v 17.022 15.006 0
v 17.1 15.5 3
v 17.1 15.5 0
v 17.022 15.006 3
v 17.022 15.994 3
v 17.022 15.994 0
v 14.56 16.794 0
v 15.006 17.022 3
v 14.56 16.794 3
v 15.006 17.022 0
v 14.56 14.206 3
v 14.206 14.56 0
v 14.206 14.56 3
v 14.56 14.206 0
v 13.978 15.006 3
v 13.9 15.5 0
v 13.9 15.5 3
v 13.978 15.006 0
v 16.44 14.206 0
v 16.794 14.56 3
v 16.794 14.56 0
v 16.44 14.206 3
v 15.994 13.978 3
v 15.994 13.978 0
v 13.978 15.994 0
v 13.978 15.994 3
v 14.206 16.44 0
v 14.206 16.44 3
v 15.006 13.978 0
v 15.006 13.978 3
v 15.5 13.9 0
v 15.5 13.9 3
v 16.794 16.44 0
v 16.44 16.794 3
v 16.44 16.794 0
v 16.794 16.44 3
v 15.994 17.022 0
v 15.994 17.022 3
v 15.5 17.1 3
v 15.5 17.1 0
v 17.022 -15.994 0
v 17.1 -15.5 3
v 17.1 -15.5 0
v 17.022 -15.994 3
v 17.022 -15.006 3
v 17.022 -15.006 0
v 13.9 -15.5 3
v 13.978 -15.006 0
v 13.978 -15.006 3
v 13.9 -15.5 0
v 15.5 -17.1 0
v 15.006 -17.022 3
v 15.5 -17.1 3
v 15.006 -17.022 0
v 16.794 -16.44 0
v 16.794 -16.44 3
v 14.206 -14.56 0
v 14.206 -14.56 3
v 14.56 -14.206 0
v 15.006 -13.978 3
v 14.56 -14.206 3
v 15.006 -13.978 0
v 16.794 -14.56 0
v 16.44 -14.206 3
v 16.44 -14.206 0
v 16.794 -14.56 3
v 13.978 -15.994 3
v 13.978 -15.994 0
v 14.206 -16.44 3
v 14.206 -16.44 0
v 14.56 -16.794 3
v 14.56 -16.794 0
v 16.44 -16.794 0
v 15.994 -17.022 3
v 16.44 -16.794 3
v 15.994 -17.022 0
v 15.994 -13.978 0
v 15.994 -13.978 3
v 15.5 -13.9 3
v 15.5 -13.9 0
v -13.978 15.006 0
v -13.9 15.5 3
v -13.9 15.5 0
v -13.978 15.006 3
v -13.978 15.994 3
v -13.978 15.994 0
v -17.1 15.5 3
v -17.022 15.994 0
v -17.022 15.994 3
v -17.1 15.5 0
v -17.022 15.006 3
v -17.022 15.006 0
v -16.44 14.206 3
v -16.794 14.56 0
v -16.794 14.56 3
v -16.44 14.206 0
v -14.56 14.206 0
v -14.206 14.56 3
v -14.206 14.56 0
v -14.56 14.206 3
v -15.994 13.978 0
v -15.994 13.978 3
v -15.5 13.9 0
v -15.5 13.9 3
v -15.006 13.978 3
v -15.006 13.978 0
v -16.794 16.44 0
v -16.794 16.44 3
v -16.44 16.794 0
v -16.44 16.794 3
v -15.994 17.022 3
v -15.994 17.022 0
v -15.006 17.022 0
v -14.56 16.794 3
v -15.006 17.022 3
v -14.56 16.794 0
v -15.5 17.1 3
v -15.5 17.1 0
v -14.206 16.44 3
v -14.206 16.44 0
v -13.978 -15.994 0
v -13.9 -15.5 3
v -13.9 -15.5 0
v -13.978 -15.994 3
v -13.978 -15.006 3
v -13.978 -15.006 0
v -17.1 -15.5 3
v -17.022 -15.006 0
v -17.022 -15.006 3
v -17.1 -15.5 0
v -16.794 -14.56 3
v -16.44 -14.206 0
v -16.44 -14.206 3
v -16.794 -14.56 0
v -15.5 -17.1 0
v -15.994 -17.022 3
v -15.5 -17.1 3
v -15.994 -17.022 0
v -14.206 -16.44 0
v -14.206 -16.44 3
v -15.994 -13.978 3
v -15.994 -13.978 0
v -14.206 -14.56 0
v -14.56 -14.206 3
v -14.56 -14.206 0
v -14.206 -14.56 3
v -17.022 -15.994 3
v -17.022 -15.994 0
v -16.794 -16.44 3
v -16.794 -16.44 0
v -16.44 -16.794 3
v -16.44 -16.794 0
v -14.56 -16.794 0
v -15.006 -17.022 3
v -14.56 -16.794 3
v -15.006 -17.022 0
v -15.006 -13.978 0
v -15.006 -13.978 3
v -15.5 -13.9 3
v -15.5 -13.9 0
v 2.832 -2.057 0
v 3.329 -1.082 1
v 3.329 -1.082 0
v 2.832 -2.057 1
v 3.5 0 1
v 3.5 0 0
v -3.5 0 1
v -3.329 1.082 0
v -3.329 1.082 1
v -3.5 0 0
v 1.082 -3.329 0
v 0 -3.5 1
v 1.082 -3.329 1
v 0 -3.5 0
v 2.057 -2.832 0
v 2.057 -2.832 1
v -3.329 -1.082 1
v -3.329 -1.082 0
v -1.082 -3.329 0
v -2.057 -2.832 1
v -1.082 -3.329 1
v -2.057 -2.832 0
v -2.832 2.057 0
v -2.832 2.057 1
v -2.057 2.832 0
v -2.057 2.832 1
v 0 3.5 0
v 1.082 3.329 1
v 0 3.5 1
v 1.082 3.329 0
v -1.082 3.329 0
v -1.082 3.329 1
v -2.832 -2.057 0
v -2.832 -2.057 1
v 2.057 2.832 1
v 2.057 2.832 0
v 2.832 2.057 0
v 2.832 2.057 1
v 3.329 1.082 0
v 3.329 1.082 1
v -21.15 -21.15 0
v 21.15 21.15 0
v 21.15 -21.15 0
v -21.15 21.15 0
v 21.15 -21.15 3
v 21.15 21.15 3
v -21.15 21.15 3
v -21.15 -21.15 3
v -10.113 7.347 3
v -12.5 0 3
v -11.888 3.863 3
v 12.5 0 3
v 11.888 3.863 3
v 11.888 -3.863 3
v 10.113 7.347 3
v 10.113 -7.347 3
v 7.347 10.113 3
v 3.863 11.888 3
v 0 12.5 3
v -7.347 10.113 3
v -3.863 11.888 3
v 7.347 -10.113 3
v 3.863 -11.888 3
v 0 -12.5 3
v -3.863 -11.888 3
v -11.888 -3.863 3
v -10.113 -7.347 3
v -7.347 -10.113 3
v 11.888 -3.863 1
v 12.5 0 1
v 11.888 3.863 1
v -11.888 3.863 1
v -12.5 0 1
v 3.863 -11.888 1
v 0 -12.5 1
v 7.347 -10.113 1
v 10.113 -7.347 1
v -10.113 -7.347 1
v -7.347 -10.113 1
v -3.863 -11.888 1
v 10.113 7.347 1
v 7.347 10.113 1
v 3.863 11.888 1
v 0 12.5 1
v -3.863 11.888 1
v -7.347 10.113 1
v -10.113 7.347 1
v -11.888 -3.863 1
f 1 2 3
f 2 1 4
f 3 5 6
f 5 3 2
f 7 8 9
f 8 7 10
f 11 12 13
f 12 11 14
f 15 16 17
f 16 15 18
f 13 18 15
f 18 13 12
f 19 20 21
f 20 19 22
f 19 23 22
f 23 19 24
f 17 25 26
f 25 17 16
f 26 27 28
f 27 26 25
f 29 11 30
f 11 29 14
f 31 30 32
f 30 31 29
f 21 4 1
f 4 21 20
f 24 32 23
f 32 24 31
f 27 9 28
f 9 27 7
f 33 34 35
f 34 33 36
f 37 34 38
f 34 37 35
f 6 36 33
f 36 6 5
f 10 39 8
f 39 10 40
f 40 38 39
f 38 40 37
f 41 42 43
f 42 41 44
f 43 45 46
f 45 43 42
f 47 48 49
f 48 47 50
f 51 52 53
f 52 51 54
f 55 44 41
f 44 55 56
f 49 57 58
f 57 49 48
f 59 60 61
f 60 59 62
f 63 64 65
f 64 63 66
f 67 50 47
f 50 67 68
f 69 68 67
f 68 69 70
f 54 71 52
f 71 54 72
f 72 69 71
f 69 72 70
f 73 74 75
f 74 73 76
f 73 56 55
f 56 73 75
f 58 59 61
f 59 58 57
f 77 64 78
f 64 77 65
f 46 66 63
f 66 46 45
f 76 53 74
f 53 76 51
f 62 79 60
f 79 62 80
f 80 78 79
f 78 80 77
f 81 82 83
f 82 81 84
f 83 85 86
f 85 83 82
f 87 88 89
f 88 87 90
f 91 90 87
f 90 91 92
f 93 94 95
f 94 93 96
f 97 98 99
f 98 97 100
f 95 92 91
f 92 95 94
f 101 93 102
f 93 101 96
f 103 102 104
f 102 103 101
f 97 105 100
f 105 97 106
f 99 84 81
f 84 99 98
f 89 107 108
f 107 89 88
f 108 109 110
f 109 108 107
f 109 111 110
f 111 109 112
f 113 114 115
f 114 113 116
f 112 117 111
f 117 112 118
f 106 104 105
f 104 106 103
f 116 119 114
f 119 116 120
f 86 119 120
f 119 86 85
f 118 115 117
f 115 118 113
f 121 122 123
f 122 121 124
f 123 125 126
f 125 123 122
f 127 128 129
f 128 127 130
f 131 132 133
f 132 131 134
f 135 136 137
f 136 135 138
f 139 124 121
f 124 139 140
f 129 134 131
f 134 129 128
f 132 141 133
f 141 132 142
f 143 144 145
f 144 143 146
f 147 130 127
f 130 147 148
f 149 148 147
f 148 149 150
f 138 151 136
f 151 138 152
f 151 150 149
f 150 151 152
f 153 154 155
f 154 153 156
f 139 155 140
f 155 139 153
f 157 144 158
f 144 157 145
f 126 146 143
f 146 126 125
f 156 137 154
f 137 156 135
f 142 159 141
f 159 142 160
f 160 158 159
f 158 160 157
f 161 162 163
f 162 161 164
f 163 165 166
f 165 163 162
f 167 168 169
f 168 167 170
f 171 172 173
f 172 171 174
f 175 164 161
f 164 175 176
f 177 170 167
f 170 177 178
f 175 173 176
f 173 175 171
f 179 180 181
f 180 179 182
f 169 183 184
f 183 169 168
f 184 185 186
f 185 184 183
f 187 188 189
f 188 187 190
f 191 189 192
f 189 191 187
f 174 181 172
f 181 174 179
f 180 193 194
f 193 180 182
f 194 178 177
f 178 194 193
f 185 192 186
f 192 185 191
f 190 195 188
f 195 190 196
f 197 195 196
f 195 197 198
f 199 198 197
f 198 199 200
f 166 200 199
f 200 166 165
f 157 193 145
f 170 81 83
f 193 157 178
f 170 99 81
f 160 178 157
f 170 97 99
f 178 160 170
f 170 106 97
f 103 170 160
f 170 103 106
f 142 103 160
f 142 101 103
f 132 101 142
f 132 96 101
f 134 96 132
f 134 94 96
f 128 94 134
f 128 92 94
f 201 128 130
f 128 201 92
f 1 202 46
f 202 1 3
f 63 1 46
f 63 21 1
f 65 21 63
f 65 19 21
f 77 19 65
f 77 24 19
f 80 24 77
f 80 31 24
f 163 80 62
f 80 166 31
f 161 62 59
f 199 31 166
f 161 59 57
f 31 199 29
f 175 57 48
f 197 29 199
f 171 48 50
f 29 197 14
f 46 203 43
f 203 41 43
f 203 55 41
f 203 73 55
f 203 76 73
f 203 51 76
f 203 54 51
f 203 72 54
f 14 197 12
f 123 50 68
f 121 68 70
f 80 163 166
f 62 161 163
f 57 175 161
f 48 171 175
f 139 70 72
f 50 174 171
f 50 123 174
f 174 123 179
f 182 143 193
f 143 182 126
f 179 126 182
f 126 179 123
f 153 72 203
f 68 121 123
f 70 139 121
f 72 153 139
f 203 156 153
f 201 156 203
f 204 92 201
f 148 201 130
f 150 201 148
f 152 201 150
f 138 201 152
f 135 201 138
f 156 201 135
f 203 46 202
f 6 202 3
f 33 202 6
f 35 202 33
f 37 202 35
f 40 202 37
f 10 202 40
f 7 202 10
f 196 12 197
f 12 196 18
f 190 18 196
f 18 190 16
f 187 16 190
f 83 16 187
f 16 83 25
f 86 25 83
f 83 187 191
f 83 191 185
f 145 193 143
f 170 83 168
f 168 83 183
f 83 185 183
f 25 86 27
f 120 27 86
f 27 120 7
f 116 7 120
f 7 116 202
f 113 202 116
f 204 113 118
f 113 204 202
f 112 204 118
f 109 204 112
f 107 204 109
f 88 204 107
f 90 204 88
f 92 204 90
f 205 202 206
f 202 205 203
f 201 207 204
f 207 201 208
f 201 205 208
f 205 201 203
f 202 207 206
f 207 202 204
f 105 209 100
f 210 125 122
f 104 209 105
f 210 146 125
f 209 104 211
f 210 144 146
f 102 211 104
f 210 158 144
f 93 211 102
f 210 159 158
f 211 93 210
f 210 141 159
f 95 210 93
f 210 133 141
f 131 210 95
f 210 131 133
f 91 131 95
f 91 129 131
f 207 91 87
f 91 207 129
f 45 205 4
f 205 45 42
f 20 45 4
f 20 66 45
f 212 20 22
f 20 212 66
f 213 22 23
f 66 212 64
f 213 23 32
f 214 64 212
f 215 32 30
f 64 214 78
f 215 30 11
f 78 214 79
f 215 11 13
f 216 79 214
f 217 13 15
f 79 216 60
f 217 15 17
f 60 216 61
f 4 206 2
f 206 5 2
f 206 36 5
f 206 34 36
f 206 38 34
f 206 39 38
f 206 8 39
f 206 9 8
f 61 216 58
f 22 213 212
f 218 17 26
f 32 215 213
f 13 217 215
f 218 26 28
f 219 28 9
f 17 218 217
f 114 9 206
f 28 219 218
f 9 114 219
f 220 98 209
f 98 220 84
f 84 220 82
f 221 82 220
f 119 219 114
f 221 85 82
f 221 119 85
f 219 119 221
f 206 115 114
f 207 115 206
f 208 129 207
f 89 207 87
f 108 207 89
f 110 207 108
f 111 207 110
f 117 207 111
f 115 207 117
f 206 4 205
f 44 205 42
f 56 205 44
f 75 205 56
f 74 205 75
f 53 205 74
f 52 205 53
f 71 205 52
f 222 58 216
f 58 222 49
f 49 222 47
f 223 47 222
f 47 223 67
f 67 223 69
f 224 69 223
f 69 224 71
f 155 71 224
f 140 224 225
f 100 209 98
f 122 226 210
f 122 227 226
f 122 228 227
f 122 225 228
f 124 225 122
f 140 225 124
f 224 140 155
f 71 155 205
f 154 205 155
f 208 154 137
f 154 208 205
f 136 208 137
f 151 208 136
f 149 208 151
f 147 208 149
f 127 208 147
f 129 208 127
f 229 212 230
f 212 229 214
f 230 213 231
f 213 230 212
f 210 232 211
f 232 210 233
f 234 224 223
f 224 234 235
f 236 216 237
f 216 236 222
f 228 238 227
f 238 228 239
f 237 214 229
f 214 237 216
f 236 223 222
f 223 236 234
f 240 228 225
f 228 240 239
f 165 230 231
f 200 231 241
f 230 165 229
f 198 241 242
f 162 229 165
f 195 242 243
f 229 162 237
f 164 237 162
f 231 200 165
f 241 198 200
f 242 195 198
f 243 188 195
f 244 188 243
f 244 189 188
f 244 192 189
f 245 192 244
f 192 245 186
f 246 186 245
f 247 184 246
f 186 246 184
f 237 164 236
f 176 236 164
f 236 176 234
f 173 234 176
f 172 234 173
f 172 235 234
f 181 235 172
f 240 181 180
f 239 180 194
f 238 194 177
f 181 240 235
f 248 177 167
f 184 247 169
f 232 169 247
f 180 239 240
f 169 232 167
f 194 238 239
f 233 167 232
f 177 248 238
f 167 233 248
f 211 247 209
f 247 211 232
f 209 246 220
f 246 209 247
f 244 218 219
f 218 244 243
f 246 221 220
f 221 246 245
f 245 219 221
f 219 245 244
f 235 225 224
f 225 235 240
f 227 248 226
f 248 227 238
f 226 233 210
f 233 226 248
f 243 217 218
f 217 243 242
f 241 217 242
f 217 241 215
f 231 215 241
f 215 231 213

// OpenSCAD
rad = 31;
dx = rad/2;
hole_sz=3.2;
shaft_sz=7;

full_h = 3;

difference() {
linear_extrude(height = full_h, center = false, convexity = 10, twist = 0, slices = 20, scale = 1.0) {square([42.3,42.3],true);}

translate([0,0,-1]){
translate([dx,dx,0]){
    linear_extrude(height = full_h+2, center = false, convexity = 10, twist = 0, slices = 20, scale = 1.0) {circle(d=hole_sz, $fn=20);}
}
translate([dx,-dx,0]){
    linear_extrude(height = full_h+2, center = false, convexity = 10, twist = 0, slices = 20, scale = 1.0) {circle(d=hole_sz, $fn=20);}
}
translate([-dx,dx,0]){
    linear_extrude(height = full_h+2, center = false, convexity = 10, twist = 0, slices = 20, scale = 1.0) {circle(d=hole_sz, $fn=20);}
}
translate([-dx,-dx,0]){
    linear_extrude(height = full_h+2, center = false, convexity = 10, twist = 0, slices = 20, scale = 1.0) {circle(d=hole_sz, $fn=20);}
}
 linear_extrude(height = full_h+2, center = false, convexity = 10, twist = 0, slices = 20, scale = 1.0) {circle(d=shaft_sz, $fn=20);};

}
 translate([0,0,full_h-2]){
 linear_extrude(height = full_h, center = false, convexity = 10, twist = 0, slices = 20, scale = 1.0) {circle(d=25, $fn=20);};
}

 }
     
 
